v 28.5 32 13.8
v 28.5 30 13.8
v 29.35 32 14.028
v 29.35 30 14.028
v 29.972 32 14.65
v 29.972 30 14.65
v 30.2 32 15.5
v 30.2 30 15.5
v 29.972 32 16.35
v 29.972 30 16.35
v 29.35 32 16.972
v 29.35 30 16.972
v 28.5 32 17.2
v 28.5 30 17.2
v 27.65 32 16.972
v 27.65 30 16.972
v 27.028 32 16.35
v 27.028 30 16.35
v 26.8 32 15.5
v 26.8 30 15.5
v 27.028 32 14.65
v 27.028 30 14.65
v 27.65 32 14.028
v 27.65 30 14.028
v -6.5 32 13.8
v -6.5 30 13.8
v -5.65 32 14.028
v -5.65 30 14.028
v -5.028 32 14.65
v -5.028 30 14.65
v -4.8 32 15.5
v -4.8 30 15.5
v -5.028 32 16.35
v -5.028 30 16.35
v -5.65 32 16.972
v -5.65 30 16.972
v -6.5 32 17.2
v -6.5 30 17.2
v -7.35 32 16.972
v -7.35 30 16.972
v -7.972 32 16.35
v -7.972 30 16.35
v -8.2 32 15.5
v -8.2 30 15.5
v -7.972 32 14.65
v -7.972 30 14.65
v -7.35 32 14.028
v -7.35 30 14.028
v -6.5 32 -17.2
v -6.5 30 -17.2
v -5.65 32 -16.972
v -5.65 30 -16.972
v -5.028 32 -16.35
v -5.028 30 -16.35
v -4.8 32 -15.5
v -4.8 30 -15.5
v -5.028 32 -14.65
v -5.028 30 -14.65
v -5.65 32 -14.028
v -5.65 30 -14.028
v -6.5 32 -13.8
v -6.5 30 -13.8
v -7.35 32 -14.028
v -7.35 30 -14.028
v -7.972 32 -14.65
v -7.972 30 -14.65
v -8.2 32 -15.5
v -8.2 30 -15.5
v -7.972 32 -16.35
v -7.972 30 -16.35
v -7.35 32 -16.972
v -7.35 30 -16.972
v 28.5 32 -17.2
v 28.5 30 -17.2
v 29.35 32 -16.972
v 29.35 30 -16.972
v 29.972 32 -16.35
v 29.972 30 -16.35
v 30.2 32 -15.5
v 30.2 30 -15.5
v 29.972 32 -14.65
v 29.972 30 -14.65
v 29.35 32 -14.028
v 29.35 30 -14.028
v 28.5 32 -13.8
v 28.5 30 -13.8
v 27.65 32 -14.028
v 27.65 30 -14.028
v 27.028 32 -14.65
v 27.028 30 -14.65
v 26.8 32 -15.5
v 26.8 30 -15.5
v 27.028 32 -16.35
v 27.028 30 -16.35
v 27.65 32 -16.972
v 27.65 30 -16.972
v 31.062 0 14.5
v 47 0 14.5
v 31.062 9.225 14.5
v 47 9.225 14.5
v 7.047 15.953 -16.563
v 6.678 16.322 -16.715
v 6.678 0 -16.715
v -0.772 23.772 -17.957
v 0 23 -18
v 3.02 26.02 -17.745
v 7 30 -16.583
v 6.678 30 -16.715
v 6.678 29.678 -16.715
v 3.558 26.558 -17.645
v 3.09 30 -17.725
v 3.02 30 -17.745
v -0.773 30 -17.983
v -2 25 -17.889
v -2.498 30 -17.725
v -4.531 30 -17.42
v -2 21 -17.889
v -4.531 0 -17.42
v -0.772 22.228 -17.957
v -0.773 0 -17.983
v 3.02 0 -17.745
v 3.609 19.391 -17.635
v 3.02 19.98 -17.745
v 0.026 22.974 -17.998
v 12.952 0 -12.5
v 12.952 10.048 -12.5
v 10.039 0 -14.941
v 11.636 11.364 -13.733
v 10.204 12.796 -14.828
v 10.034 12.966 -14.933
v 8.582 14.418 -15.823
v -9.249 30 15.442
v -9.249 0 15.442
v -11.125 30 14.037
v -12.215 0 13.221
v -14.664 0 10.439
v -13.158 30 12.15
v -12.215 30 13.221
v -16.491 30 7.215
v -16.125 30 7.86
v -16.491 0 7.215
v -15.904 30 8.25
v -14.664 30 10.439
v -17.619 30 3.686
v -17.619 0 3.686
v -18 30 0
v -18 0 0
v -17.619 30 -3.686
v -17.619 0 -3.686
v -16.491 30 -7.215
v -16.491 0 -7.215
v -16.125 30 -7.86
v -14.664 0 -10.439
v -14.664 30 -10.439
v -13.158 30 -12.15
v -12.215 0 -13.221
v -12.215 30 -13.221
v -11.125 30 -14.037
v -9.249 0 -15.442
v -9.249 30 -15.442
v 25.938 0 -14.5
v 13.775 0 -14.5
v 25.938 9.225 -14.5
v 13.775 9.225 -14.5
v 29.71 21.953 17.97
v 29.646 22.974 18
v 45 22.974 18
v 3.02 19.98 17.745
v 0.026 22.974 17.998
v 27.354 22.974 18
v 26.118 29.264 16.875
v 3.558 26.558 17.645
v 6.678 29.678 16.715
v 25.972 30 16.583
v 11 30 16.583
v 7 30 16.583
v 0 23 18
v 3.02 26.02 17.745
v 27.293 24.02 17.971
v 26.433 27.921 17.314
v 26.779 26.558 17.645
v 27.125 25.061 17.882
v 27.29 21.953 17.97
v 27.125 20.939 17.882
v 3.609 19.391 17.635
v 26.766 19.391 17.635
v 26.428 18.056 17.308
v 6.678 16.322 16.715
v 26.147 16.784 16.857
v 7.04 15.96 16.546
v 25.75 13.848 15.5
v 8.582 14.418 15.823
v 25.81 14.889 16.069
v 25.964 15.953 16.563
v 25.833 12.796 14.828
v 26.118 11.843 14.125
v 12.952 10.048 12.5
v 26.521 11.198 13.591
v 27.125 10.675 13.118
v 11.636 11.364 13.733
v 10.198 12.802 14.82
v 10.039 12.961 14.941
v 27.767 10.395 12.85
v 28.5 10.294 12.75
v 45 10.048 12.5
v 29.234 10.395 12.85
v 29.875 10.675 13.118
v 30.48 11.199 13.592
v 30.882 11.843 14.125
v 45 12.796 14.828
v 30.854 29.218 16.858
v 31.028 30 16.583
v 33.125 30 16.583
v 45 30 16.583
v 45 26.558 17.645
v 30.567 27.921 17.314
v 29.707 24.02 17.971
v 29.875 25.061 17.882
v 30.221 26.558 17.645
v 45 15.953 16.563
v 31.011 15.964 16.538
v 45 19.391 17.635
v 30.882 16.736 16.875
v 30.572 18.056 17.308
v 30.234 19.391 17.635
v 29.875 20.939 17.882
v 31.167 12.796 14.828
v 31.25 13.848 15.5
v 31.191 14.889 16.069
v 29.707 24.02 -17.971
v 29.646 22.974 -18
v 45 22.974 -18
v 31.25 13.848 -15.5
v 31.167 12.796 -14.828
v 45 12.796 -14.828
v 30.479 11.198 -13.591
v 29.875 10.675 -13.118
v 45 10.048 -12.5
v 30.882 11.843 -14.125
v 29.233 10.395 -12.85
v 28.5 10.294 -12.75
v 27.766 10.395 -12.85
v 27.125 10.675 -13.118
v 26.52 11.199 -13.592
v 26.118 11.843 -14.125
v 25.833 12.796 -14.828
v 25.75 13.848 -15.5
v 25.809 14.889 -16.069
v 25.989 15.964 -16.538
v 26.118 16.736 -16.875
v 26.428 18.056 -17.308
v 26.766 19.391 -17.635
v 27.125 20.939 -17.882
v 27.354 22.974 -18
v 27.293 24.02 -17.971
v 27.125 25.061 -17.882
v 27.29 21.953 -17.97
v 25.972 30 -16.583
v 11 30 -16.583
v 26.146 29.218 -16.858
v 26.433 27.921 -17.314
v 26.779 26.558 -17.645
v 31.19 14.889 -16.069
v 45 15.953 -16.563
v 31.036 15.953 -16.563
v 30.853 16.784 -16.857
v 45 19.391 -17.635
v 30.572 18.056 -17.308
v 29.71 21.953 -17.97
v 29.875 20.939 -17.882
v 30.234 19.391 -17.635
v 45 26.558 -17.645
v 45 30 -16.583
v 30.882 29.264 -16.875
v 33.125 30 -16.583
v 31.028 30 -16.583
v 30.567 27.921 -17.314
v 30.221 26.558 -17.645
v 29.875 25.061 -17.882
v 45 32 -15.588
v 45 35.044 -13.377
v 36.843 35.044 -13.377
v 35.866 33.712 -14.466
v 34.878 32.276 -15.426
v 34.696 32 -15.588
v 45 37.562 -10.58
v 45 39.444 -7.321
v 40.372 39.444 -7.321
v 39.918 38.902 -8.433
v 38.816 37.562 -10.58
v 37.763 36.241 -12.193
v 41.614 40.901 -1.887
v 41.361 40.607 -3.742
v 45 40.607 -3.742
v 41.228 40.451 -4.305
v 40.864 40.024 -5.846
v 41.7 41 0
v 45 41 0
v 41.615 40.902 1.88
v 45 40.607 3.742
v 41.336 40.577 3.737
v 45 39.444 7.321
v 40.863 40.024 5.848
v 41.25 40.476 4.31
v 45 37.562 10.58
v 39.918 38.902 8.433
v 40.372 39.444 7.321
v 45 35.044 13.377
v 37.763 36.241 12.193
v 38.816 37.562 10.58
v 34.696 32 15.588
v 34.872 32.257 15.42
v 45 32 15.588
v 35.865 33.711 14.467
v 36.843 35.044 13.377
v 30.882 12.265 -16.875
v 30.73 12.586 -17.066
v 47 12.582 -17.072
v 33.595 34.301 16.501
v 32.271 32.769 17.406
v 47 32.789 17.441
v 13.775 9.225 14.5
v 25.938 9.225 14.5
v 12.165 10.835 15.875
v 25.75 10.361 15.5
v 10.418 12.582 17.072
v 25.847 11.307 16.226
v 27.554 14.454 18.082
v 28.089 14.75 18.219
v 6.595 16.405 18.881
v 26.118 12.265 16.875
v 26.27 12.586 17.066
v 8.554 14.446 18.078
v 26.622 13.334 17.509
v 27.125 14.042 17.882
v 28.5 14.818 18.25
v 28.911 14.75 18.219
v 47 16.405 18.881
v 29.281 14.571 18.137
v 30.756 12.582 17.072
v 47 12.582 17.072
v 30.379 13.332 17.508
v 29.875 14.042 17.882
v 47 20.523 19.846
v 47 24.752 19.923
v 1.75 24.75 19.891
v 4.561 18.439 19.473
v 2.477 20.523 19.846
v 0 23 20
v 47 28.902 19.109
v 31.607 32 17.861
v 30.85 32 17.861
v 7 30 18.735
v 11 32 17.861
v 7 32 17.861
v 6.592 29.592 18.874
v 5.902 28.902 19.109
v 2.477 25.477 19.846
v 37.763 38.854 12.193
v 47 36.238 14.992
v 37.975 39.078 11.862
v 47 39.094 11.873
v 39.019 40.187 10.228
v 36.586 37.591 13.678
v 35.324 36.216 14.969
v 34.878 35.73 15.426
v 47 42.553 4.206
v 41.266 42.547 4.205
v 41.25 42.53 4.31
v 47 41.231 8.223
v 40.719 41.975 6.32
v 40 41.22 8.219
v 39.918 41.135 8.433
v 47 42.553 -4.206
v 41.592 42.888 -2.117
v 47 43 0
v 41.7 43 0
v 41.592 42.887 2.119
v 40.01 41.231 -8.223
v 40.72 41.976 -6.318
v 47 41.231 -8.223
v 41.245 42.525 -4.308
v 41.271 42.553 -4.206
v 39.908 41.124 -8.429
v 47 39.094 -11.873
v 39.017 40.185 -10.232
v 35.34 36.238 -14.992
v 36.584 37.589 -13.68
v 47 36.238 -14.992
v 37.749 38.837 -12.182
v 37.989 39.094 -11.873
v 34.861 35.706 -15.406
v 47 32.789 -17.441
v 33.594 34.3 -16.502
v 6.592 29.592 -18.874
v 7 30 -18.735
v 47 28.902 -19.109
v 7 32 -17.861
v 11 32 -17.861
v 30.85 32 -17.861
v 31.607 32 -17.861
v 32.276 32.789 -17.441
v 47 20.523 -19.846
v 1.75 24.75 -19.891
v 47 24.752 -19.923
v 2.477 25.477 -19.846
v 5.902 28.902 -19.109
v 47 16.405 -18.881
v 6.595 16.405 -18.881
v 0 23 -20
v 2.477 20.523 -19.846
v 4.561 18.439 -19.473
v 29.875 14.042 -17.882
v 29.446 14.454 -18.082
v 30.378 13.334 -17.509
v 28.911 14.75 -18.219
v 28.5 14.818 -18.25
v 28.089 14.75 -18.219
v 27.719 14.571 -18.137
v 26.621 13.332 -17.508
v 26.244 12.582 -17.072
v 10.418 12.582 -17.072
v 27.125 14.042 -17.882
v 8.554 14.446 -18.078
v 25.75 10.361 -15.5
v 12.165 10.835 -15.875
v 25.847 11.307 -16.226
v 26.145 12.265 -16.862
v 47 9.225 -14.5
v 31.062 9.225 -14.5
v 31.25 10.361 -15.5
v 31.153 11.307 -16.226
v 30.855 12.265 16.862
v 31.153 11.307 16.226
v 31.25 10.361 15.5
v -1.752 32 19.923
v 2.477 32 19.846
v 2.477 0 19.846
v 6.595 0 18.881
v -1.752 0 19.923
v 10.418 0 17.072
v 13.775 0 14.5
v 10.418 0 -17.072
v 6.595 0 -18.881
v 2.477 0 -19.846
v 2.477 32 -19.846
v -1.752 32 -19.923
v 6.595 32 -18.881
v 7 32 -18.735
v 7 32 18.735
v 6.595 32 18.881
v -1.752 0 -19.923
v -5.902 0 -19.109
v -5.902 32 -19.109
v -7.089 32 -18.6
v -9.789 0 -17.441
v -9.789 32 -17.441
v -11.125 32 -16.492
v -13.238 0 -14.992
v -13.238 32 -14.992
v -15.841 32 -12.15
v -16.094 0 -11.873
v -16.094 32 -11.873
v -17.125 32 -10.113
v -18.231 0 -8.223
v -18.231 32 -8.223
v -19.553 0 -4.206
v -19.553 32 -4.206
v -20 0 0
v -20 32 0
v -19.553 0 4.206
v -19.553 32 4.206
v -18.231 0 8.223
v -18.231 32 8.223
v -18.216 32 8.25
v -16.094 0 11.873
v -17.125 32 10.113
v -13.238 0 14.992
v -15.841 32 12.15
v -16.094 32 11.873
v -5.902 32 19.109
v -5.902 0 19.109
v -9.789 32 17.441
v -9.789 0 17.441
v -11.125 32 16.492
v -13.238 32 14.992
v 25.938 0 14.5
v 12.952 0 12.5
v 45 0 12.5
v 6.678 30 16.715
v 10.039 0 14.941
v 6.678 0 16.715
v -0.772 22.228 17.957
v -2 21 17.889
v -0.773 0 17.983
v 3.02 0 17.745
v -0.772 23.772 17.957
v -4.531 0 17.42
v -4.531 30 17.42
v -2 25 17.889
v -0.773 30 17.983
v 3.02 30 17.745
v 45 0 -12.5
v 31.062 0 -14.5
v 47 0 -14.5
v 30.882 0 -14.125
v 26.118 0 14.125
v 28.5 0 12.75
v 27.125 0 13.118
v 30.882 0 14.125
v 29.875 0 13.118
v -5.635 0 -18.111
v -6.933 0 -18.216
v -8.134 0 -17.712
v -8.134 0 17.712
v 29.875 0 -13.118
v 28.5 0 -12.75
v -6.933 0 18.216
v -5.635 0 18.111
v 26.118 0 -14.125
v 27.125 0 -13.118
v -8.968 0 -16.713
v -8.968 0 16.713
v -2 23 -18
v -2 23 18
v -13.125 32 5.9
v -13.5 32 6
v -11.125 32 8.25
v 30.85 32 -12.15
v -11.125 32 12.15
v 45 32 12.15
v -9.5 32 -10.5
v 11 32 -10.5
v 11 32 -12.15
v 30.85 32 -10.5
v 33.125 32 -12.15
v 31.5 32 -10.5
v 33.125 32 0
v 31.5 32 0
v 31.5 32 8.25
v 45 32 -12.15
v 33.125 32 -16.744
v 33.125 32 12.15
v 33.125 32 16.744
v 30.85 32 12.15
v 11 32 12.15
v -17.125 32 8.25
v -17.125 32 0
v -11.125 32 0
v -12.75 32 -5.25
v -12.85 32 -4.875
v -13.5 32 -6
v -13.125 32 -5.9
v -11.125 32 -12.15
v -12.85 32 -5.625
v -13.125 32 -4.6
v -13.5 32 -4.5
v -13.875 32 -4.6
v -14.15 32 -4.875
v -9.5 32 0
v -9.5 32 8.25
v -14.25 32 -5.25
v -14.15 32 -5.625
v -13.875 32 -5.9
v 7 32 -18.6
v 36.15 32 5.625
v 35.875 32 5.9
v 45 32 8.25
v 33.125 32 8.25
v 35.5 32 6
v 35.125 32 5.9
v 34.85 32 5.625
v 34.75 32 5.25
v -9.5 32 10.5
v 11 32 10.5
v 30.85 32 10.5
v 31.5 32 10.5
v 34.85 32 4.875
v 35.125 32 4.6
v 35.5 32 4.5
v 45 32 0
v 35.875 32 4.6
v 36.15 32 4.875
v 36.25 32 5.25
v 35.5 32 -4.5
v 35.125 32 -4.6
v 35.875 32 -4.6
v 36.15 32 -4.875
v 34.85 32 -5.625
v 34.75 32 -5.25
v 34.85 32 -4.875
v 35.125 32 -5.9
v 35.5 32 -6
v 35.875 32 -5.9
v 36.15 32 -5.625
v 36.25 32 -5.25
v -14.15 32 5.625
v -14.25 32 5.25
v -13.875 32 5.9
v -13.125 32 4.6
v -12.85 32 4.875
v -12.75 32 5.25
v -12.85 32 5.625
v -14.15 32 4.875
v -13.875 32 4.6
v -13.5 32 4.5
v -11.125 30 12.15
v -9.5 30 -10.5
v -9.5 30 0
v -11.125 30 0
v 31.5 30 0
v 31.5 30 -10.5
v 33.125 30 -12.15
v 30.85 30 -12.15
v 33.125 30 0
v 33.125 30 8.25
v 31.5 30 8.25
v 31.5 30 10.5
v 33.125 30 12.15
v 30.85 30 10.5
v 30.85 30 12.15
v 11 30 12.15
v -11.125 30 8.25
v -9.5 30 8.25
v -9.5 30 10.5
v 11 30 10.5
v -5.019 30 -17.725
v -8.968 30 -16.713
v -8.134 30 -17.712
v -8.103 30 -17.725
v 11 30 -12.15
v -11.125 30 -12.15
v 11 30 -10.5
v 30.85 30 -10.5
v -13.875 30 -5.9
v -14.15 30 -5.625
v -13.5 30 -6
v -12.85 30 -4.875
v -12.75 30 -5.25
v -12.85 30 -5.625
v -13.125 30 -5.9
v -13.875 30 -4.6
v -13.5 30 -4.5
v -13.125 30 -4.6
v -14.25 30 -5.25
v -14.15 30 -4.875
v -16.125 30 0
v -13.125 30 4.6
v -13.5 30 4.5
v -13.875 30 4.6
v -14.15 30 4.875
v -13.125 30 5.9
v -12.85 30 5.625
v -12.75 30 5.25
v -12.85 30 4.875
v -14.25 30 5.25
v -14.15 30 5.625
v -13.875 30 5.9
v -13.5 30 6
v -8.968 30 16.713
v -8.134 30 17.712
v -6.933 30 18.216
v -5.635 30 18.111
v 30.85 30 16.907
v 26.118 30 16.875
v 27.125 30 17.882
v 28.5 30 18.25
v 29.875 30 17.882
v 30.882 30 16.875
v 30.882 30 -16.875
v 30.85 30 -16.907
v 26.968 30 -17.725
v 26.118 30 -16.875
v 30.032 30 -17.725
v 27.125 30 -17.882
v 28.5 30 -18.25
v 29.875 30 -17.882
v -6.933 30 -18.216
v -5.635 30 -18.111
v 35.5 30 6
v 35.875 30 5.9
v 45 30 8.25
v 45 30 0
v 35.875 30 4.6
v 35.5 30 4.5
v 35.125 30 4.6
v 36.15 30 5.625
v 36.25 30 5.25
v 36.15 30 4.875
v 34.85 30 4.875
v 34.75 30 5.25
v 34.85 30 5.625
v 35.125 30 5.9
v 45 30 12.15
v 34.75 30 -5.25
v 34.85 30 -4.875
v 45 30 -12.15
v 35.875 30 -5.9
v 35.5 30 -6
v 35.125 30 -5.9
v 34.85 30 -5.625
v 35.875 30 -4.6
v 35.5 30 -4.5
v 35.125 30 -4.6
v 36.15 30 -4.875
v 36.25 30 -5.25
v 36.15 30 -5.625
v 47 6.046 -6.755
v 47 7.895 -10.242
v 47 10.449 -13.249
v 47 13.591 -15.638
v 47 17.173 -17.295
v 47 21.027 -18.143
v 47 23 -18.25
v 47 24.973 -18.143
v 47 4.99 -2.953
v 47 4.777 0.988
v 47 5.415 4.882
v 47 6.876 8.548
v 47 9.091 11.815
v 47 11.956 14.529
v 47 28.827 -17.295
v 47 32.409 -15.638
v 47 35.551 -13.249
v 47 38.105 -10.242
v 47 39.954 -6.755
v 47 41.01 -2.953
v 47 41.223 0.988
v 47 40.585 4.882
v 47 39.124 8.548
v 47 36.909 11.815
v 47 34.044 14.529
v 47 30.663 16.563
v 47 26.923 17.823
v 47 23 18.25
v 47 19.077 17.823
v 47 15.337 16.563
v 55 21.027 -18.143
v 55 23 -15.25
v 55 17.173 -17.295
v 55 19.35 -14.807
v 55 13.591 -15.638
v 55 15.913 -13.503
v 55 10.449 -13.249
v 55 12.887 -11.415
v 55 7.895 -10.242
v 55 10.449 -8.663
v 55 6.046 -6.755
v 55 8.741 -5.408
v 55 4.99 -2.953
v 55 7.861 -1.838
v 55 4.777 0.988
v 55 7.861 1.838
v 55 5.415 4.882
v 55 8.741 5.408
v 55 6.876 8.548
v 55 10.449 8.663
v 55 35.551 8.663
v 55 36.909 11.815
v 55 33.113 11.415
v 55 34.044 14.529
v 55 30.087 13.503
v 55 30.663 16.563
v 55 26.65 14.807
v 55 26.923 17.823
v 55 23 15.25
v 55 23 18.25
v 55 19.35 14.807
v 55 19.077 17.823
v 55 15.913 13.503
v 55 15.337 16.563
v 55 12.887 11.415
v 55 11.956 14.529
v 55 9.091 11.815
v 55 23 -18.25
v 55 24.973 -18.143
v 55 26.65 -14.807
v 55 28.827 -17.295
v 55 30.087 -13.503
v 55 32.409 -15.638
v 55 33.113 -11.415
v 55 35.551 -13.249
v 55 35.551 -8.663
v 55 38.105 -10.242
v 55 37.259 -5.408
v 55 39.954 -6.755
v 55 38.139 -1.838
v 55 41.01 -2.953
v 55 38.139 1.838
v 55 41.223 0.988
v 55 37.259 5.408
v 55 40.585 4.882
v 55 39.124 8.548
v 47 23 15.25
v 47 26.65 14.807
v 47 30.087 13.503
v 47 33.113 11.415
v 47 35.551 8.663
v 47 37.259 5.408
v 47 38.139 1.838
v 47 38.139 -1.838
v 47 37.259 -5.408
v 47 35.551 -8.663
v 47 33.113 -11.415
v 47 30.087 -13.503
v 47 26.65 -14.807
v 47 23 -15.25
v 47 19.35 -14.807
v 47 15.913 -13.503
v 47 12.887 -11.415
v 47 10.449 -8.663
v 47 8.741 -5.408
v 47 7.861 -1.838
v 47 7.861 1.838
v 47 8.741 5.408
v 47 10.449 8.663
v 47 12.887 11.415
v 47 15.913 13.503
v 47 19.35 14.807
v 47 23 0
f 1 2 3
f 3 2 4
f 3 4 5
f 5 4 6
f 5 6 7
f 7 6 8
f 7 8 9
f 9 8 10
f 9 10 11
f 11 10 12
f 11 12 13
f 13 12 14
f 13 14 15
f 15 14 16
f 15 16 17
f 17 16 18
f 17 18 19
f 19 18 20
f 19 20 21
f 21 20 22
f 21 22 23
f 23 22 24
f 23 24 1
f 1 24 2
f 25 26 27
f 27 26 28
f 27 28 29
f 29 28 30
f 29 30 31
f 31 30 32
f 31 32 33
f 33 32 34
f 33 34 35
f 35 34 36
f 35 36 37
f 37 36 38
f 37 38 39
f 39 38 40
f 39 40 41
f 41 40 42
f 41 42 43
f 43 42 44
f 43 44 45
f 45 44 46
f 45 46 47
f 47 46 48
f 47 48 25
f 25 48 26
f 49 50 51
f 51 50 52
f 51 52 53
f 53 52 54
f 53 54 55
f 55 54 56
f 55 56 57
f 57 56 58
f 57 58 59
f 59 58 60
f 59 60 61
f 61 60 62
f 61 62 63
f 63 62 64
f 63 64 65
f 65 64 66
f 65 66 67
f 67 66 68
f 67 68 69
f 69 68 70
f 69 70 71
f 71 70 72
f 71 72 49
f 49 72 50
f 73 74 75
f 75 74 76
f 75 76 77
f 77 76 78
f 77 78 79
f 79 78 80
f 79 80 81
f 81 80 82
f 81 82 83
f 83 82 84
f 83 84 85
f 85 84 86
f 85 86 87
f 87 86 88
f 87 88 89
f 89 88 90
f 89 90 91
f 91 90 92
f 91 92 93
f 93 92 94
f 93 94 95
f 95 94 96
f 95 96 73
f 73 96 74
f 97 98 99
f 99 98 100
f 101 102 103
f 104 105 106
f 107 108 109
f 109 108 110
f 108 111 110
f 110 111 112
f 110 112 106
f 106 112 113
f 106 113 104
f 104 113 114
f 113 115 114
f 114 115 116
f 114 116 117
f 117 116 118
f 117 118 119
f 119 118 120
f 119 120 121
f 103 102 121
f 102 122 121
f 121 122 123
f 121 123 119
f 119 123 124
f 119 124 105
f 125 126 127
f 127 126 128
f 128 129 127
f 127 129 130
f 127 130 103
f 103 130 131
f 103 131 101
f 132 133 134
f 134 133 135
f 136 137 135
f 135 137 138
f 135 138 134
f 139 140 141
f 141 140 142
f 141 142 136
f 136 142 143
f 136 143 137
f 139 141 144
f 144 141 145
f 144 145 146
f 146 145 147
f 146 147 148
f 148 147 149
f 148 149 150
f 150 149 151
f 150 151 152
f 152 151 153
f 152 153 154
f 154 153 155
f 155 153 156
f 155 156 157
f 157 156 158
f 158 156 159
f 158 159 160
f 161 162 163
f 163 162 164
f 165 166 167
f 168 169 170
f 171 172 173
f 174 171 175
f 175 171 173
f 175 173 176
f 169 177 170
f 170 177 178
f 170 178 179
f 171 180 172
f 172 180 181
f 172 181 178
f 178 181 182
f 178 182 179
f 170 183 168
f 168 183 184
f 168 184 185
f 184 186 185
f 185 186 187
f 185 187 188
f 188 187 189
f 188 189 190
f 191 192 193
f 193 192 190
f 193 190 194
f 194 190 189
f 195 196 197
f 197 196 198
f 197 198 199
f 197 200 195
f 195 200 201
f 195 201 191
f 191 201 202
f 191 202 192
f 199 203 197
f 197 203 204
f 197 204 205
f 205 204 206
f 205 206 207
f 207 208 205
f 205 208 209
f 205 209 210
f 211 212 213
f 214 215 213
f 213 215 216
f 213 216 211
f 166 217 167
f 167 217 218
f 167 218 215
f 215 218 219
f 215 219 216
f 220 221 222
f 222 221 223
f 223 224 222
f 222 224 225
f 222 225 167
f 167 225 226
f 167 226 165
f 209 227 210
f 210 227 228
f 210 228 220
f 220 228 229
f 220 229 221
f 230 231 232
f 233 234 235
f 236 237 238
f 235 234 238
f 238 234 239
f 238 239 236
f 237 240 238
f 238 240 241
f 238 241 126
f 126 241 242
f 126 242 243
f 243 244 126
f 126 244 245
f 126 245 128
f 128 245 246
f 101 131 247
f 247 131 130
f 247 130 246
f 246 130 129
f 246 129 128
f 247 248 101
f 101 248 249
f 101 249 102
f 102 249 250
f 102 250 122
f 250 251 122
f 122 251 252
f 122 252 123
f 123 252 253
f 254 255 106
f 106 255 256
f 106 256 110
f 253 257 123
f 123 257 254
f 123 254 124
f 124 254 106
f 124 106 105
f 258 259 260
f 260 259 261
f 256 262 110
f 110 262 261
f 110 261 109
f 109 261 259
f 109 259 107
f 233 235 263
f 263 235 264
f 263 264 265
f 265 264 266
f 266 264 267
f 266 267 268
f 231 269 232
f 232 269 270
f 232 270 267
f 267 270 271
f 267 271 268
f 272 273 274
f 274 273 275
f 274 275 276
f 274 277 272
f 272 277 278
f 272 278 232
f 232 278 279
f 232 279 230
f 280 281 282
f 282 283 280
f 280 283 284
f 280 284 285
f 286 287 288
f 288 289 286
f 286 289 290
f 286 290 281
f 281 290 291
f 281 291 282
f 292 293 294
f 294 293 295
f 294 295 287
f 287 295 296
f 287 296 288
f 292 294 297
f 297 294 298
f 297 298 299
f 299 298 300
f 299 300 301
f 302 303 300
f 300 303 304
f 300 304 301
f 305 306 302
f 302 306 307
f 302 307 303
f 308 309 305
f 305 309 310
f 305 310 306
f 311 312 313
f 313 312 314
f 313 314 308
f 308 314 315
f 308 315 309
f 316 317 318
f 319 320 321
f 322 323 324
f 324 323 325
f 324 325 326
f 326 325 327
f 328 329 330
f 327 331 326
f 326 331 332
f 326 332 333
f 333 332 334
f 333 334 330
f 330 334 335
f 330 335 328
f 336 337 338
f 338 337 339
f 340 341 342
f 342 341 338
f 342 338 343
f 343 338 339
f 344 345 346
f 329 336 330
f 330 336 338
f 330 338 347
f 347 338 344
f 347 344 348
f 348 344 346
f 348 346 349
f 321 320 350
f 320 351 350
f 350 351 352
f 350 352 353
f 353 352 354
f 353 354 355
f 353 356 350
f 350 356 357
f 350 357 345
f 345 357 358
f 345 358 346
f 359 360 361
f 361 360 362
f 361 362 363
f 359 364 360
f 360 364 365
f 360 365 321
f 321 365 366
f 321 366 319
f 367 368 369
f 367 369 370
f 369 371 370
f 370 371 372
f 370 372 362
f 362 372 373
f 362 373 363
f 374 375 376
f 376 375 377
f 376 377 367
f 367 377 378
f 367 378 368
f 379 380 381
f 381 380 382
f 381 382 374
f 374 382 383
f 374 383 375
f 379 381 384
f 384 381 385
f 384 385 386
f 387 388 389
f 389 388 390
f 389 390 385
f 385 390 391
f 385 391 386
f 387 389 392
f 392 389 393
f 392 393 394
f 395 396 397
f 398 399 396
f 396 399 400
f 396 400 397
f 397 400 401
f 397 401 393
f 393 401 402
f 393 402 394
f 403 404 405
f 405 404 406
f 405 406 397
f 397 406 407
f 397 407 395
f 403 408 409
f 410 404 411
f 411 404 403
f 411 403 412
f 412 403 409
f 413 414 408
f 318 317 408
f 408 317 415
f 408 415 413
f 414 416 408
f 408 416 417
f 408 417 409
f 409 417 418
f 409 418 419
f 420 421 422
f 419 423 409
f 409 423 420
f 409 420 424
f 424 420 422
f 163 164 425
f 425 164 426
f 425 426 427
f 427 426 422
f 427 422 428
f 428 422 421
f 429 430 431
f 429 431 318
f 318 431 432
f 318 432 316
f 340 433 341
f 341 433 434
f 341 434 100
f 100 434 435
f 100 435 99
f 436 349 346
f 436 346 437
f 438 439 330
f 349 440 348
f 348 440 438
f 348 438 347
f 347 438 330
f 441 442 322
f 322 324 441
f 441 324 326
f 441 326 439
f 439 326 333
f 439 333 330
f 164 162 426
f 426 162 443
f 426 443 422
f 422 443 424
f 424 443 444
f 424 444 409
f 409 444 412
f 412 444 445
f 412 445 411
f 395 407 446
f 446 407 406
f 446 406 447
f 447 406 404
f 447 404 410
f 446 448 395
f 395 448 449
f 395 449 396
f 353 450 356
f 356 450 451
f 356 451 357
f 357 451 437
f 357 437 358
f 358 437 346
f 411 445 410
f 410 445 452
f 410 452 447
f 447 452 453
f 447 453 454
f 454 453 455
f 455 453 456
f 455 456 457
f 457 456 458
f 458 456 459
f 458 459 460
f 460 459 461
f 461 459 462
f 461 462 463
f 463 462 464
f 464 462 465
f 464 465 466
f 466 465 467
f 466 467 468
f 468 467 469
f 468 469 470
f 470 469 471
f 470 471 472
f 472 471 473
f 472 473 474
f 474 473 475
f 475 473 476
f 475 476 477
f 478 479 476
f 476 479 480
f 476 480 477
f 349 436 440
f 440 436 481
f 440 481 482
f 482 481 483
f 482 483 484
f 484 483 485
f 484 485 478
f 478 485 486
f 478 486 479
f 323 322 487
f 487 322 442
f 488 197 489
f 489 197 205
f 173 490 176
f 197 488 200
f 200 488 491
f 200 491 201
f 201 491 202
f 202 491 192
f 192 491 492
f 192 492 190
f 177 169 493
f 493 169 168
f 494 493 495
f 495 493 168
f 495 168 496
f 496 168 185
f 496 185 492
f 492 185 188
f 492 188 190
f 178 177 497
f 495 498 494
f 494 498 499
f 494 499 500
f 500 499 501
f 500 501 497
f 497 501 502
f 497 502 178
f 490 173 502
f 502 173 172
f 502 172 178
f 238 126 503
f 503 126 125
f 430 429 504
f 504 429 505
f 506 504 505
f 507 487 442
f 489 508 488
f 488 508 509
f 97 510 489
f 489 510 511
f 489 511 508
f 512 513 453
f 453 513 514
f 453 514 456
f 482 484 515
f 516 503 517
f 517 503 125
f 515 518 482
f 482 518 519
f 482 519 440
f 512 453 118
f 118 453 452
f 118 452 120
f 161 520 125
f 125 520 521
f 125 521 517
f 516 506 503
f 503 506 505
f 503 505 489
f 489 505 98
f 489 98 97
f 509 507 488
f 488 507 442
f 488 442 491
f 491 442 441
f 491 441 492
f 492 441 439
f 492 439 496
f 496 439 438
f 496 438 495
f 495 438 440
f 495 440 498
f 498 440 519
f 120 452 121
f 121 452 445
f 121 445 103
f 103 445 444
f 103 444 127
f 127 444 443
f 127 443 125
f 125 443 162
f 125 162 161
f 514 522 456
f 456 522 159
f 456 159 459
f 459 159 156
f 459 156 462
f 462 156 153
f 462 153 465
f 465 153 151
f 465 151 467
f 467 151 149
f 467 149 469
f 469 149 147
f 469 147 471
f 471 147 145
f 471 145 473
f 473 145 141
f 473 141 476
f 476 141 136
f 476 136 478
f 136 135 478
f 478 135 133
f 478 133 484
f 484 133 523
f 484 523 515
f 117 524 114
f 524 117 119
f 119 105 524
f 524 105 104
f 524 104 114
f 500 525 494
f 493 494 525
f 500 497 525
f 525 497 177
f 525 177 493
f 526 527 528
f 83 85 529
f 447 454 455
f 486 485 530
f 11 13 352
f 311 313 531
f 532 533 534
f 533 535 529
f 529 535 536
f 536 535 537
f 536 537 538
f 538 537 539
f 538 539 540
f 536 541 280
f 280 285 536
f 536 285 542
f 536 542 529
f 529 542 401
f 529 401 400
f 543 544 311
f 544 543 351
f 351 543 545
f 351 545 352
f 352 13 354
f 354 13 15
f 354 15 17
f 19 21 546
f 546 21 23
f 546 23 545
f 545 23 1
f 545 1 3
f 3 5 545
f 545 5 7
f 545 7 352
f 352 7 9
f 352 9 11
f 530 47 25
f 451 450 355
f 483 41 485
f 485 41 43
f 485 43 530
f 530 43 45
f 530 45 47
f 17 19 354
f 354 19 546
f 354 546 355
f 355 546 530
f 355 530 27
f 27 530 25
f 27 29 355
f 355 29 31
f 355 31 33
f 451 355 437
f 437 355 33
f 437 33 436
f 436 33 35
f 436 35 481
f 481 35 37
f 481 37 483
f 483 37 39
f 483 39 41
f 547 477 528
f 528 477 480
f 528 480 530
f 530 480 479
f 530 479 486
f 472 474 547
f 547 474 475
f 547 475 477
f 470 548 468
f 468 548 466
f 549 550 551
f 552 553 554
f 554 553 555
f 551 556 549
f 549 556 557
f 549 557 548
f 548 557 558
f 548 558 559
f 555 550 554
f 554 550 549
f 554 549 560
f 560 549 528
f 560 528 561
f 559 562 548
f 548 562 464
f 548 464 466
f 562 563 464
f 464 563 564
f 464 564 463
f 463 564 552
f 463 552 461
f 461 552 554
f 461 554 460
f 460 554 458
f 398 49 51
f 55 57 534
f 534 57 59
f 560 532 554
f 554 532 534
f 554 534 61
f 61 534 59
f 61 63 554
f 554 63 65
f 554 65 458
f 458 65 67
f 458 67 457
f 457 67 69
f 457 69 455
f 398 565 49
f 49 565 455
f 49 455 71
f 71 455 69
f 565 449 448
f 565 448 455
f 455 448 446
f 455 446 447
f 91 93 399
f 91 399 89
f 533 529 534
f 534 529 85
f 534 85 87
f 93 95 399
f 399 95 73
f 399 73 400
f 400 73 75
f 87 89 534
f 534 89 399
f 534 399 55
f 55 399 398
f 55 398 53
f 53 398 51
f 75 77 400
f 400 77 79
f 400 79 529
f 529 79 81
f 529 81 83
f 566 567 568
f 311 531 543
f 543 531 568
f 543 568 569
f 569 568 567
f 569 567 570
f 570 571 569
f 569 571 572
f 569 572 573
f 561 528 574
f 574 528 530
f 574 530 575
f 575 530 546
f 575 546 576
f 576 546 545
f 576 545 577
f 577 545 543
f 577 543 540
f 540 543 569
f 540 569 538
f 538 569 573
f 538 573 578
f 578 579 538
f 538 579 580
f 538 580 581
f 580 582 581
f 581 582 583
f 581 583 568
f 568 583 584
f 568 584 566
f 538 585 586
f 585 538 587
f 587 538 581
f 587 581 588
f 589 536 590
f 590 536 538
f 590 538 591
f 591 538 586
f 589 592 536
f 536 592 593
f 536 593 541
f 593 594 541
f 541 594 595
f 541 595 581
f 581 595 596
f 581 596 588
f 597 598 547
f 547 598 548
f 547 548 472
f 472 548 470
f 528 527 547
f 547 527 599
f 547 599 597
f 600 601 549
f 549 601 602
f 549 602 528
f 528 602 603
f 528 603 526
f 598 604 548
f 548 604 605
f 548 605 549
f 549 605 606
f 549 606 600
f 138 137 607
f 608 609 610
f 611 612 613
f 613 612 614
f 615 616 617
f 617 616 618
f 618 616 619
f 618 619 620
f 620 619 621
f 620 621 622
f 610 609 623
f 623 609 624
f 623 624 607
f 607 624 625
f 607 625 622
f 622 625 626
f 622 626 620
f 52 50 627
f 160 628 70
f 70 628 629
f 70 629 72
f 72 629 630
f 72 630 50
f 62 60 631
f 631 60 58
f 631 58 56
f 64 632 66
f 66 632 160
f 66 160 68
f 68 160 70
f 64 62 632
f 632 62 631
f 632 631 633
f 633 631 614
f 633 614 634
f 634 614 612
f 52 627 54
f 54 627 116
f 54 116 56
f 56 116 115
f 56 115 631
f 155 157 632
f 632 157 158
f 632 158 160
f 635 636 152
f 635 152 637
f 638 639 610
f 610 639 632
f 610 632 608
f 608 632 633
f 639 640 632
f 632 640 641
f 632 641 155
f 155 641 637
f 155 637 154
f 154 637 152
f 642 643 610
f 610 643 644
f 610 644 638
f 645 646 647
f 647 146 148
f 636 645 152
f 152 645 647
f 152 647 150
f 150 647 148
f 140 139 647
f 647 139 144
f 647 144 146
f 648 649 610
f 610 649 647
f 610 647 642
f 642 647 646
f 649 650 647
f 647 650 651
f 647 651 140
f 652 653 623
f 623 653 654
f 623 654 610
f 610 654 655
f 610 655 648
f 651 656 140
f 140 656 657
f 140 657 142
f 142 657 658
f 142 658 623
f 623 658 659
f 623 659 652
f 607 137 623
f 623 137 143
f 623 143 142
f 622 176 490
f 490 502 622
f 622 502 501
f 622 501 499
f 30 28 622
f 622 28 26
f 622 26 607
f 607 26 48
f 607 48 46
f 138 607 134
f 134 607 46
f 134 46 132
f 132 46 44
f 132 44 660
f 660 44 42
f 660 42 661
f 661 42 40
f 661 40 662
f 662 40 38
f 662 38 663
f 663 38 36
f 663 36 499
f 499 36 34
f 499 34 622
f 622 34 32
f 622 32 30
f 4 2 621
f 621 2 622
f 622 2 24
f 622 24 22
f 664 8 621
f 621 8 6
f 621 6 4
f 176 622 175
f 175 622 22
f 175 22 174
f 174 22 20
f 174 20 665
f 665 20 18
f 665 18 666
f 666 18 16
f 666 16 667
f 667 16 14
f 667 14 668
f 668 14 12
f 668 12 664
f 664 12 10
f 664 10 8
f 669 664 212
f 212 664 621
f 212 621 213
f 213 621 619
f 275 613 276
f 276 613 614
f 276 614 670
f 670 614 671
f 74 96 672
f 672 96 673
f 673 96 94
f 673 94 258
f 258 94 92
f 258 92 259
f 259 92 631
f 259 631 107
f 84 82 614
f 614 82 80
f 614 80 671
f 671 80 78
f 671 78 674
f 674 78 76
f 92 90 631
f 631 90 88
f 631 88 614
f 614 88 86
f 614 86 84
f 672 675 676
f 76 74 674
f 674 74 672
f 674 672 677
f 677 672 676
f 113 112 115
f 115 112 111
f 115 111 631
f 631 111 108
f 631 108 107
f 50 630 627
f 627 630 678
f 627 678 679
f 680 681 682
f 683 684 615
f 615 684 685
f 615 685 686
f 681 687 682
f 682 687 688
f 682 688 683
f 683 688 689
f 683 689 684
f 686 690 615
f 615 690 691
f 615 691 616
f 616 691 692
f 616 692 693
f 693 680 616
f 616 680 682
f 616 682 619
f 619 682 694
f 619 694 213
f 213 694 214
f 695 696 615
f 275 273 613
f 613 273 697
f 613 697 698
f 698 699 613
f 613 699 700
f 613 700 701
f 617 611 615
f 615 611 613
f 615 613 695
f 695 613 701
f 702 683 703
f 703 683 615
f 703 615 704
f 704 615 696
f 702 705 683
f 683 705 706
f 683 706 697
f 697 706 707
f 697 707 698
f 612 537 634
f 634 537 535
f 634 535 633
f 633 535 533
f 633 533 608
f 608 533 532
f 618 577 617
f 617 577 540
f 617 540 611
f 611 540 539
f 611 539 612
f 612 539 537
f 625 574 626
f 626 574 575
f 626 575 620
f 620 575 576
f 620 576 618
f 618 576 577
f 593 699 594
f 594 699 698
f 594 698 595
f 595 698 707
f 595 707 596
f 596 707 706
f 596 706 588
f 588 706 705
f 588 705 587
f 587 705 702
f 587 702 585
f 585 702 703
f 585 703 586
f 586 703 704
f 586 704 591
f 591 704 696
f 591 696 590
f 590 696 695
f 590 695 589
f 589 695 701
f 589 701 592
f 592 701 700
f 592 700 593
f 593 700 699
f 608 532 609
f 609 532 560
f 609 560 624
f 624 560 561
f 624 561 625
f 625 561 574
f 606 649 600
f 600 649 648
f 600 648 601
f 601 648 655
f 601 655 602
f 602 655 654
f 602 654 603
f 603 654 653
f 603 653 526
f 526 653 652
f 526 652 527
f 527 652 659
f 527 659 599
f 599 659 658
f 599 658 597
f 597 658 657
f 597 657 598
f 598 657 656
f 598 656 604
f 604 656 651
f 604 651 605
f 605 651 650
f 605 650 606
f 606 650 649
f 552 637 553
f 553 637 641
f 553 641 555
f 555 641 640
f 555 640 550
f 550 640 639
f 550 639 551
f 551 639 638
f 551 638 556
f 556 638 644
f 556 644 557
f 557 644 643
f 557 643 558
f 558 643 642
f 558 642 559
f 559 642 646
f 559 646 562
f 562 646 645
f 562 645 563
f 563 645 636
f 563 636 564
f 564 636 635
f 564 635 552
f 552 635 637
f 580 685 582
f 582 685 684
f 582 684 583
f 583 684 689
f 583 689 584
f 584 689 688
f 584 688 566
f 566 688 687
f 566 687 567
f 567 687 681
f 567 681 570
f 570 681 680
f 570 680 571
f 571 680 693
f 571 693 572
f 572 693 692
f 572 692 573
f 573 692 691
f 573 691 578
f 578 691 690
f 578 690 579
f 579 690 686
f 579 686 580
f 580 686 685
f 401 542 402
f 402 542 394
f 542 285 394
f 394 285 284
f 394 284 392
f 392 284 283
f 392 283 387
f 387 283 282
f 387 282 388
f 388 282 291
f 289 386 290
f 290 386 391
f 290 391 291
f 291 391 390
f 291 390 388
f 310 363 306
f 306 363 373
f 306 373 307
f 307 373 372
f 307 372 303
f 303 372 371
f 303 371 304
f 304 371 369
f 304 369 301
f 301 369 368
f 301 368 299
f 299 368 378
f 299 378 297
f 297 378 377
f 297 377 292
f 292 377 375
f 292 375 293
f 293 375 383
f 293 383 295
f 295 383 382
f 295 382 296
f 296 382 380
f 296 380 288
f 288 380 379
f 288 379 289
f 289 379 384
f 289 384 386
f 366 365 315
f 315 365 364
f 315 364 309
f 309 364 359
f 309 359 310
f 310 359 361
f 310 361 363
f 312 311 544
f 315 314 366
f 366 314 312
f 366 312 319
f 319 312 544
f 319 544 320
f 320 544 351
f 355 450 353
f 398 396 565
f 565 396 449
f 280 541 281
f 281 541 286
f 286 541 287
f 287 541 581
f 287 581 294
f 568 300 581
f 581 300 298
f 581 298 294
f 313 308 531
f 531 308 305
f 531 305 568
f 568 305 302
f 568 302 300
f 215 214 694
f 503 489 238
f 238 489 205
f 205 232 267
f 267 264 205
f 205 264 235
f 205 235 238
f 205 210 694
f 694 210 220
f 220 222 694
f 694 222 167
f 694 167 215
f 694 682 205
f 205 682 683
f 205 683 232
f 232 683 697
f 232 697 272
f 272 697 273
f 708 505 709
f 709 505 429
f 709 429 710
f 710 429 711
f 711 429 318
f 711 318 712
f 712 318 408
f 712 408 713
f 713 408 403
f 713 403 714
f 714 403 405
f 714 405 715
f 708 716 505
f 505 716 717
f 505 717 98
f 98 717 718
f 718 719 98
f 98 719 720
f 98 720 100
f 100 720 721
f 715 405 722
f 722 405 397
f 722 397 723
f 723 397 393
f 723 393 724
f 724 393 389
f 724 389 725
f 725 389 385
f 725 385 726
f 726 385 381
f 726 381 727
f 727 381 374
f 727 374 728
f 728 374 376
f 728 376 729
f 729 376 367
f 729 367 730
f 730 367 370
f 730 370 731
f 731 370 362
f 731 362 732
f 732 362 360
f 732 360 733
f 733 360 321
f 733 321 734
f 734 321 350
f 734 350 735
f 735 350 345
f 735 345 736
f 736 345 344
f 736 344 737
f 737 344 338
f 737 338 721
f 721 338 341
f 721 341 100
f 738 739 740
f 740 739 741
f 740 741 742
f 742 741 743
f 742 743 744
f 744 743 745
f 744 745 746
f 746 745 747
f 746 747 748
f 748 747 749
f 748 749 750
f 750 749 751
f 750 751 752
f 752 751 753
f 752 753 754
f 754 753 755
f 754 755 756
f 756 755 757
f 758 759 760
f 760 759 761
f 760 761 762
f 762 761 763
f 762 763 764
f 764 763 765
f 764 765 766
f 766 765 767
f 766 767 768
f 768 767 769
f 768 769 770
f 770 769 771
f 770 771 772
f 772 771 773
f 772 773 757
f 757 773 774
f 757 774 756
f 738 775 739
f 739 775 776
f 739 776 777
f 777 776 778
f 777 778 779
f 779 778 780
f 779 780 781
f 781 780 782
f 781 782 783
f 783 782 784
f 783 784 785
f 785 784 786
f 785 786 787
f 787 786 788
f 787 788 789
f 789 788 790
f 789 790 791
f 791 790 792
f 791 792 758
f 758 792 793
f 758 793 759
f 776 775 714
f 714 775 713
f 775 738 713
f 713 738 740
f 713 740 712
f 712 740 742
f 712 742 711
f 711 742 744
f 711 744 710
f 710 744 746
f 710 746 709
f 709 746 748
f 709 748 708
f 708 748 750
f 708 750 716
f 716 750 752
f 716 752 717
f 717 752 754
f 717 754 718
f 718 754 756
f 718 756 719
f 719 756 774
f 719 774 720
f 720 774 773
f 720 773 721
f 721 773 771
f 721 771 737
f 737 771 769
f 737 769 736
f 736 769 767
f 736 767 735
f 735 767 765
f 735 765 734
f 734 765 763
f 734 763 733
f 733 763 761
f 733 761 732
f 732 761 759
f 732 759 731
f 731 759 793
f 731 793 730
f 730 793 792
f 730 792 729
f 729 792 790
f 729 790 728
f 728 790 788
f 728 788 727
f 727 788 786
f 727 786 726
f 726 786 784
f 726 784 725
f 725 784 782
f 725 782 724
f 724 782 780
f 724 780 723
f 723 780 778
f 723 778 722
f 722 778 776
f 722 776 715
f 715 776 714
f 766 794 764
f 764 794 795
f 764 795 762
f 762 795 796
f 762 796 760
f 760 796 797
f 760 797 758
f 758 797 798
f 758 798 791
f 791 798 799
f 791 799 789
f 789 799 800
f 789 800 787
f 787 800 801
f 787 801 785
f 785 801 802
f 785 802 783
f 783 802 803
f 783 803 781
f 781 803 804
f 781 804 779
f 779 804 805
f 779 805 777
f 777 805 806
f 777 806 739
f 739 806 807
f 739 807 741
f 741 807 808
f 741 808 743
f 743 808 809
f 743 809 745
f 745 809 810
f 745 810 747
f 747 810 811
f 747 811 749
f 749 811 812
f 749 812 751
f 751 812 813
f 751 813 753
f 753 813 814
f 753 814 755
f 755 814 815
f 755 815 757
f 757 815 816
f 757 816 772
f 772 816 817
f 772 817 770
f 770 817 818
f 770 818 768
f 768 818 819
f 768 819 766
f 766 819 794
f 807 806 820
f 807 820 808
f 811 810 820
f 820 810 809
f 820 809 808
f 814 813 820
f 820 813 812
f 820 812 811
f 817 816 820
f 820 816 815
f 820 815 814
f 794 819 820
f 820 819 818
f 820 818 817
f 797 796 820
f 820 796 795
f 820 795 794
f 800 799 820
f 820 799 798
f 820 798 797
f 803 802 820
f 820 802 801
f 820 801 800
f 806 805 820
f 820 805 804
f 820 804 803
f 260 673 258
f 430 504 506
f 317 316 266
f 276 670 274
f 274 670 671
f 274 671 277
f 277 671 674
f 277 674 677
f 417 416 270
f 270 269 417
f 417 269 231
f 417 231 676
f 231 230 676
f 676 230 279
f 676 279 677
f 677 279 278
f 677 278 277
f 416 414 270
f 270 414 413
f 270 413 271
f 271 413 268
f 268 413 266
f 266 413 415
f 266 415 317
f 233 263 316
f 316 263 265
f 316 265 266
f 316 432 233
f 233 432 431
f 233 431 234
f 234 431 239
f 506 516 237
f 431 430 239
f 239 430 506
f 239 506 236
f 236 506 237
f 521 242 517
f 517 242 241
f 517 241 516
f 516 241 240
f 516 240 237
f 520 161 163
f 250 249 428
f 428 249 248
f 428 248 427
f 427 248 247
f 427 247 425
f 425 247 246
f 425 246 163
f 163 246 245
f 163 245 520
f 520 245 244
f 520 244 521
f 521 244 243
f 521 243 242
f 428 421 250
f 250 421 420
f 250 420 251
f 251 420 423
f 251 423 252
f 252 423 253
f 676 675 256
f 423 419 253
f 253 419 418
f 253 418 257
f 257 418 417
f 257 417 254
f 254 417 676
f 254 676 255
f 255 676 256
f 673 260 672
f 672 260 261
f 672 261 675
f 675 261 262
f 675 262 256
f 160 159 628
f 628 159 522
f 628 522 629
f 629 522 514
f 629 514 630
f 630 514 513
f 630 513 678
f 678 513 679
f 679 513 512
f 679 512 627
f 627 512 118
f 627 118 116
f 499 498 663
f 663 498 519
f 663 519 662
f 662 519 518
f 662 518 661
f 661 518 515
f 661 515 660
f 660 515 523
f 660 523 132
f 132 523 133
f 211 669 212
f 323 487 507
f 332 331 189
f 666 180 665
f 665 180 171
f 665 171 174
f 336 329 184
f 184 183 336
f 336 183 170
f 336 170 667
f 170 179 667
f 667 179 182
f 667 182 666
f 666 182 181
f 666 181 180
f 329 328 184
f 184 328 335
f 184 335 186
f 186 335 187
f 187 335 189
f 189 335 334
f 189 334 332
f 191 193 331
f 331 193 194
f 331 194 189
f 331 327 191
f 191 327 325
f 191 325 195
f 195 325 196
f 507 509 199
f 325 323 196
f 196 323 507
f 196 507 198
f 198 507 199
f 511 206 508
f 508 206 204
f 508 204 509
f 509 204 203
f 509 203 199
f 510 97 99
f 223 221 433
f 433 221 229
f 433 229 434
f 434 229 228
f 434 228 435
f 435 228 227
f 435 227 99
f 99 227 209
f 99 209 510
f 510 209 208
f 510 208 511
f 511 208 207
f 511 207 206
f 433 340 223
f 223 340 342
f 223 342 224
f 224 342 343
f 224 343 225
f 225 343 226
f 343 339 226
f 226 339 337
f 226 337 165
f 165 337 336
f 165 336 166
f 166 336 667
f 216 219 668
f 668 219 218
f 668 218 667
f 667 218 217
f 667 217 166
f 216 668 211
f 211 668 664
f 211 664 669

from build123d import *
from build123d.topology import SkipClean

# Parameters (mm, degrees)
EXTRUDE_1_DEPTH      = 30
EXTRUDE_START        = -40
EXTRUDE_5_DEPTH      = 40
CUT_EXTRUDE_START    = -42
SKETCH_11_R          = 18
CUT_EXTRUDE_2_DEPTH  = 42
CUT_EXTRUDE_3_DEPTH  = 20
CUT_EXTRUDE_6_DEPTH  = 30
EXTRUDE_7_DEPTH      = 5
EXTRUDE_7_DEPTH_BACK = 10
SKETCH_14_R          = 0.75
SKETCH_14_W          = 41
SKETCH_14_H          = 21
EXTRUDE_9_DEPTH      = 2
SKETCH_18_R          = 20.85
CUT_EXTRUDE_8_DEPTH  = 20
CUT_EXTRUDE_START_2  = -38
CUT_EXTRUDE_10_DEPTH = 38
EXTRUDE_10_DEPTH     = 5
EXTRUDE_11_DEPTH     = 2
SKETCH_22_R          = 18.25
SKETCH_22_R_2        = 15.25
EXTRUDE_13_DEPTH     = 8
SKETCH_29_R          = 1.7
CUT_EXTRUDE_13_DEPTH = 73.622310708
SKETCH_30_R          = 2.75
CUT_EXTRUDE_14_DEPTH = 30


# Read off the part's stored shape, not the designer's step: 凸台-拉伸5
with BuildPart() as part:
    # 草图1 → 凸台-拉伸1 (new body)
    with BuildSketch(Plane(origin=(0, 0, 0), x_dir=(1, 0, 0), z_dir=(0, 1, 0))):
        with BuildLine():
            Line((40, 12.5), (12.951833847, 12.5))
            ThreePointArc((12.951833847, 12.5), (-18, 0), (12.951833847, -12.5))
            Line((12.951833847, -12.5), (40, -12.5))
            Line((40, -12.5), (40, -14.5))
            Line((40, -14.5), (13.774977314, -14.5))
            ThreePointArc((13.774977314, -14.5), (-20, 0), (13.774977314, 14.5))
            Line((13.774977314, 14.5), (40, 14.5))
            Line((40, 14.5), (40, 12.5))
        make_face()
    extrude(amount=EXTRUDE_1_DEPTH)

    # 凸台-拉伸5 outline → 凸台-拉伸5 (add)
    with BuildSketch(Plane(origin=(40, 0, 0), x_dir=(0, 0, -1), z_dir=(1, 0, 0)).offset(EXTRUDE_START)):
        with BuildLine():
            ThreePointArc((14.5, 9.225022686), (0, 43), (-14.5, 9.225022686))
            ThreePointArc((-14.5, 9.225022686), (0, 3), (14.5, 9.225022686))
        make_face()
        with BuildLine():
            ThreePointArc((14.5, 12.334635496), (0, 5), (-14.5, 12.334635496))
            ThreePointArc((-14.5, 12.334635496), (0, 41), (14.5, 12.334635496))
        make_face(mode=Mode.SUBTRACT)
    extrude(amount=EXTRUDE_5_DEPTH)

    # 草图11 → 切除-拉伸2 (cut)
    with BuildSketch(Plane(origin=(40, 0, 0), x_dir=(0, 0, -1), z_dir=(1, 0, 0)).offset(CUT_EXTRUDE_START)):
        with Locations((0, 23)):
            Circle(SKETCH_11_R)
    extrude(amount=CUT_EXTRUDE_2_DEPTH, mode=Mode.SUBTRACT)

    # 草图10 → 切除-拉伸3 (cut)
    with BuildSketch(Plane(origin=(0, 30, 0), x_dir=(1, 0, 0), z_dir=(0, 1, 0))):
        with BuildLine():
            Line((0, 20), (40, 20))
            Line((40, 20), (40, -20))
            Line((40, -20), (0, -20))
            ThreePointArc((0, -20), (-20, 0), (0, 20))
        make_face()
    extrude(amount=CUT_EXTRUDE_3_DEPTH, mode=Mode.SUBTRACT)

    # 草图13 → 切除-拉伸6 (cut)
    with SkipClean():  # the faces are left unmerged after this step: merging them gives an invalid solid
        with BuildSketch(Plane.XZ):
            with BuildLine():
                Line((40, -12.5), (12.951833847, -12.5))
                ThreePointArc((12.951833847, -12.5), (-18, 0), (12.951833847, 12.5))
                Line((12.951833847, 12.5), (40, 12.5))
                Line((40, 12.5), (40, -12.5))
            make_face()
        extrude(amount=-CUT_EXTRUDE_6_DEPTH, mode=Mode.SUBTRACT)

    # 草图15 → 凸台-拉伸7 (add, two sides: drawn at the far end of the back side and taken through both)
    with SkipClean():  # the faces are left unmerged after this step: merging them gives an invalid solid
        with BuildSketch(Plane(origin=(40, 0, 0), x_dir=(0, 0, -1), z_dir=(1, 0, 0)).offset(-EXTRUDE_7_DEPTH_BACK)):
            with BuildLine():
                Line((12.5, 10.048166153), (12.5, 7.387505004))
                ThreePointArc((12.5, 7.387505004), (0, 43), (-12.5, 7.387505004))
                Line((-12.5, 7.387505004), (-12.5, 10.048166153))
                ThreePointArc((-12.5, 10.048166153), (0, 41), (12.5, 10.048166153))
            make_face()
        extrude(amount=EXTRUDE_7_DEPTH + EXTRUDE_7_DEPTH_BACK)

    # 草图14 → 凸台-拉伸9 (add)
    # profile 1 of 2: a face of its own
    with SkipClean():  # the faces are left unmerged after this step: merging them gives an invalid solid
        with BuildSketch(Plane(origin=(0, 30, 0), x_dir=(1, 0, 0), z_dir=(0, 1, 0))):
            with BuildLine():
                Line((7, -18.734993995), (30, -18.734993995))
                Line((30, -18.734993995), (30, -16.583123952))
                Line((30, -16.583123952), (7, -16.583123952))
                ThreePointArc((7, -16.583123952), (-18, 0), (7, 16.583123952))
                Line((7, 16.583123952), (30, 16.583123952))
                Line((30, 16.583123952), (30, 18.734993995))
                Line((30, 18.734993995), (7, 18.734993995))
                ThreePointArc((7, 18.734993995), (-20, 0), (7, -18.734993995))
            make_face()
        # profile 2 of 2: a face of its own
        with BuildSketch(Plane(origin=(0, 30, 0), x_dir=(1, 0, 0), z_dir=(0, 1, 0))):
            with BuildLine():
                Line((40, 16.583123952), (40, -16.583123952))
                Line((40, -16.583123952), (7, -16.583123952))
                ThreePointArc((7, -16.583123952), (-18, 0), (7, 16.583123952))
                Line((7, 16.583123952), (40, 16.583123952))
            make_face()
            with Locations(Location((-13.5, 5.25, 0), (0, 0, 270))):
                Circle(SKETCH_14_R, mode=Mode.SUBTRACT)
            with Locations(Location((-13.5, -5.25, 0), (0, 0, 270))):
                Circle(SKETCH_14_R, mode=Mode.SUBTRACT)
            with Locations(Location((35.5, 5.25, 0), (0, 0, 270))):
                Circle(SKETCH_14_R, mode=Mode.SUBTRACT)
            with Locations(Location((35.5, -5.25, 0), (0, 0, 270))):
                Circle(SKETCH_14_R, mode=Mode.SUBTRACT)
            with Locations((11, 0)):
                Rectangle(SKETCH_14_W, SKETCH_14_H, mode=Mode.SUBTRACT)
        extrude(amount=EXTRUDE_9_DEPTH)

    # 草图18 → 切除-拉伸8 (cut)
    with SkipClean():  # the faces are left unmerged after this step: merging them gives an invalid solid
        with BuildSketch(Plane(origin=(0, 32, 0), x_dir=(1, 0, 0), z_dir=(0, 1, 0))):
            with Locations((20.85, 0)):
                Circle(SKETCH_18_R)
        extrude(amount=CUT_EXTRUDE_8_DEPTH, mode=Mode.SUBTRACT)

    # 草图19 → 切除-拉伸10 (cut)
    with SkipClean():  # the faces are left unmerged after this step: merging them gives an invalid solid
        with BuildSketch(Plane(origin=(45, 0, 0), x_dir=(0, 0, -1), z_dir=(1, 0, 0)).offset(CUT_EXTRUDE_START_2)):
            with BuildLine():
                Line((-17.860571099, 32), (-18.734993995, 32))
                Line((-18.734993995, 32), (-18.734993995, 30))
                ThreePointArc((-18.734993995, 30), (-18.325087889, 31.011938208), (-17.860571099, 32))
            make_face()
            with BuildLine():
                Line((18.734993995, 32), (17.860571099, 32))
                ThreePointArc((17.860571099, 32), (18.325087889, 31.011938208), (18.734993995, 30))
                Line((18.734993995, 30), (18.734993995, 32))
            make_face()
        extrude(amount=CUT_EXTRUDE_10_DEPTH, mode=Mode.SUBTRACT)

    # 草图20 → 凸台-拉伸10 (add)
    with SkipClean():  # the faces are left unmerged after this step: merging them gives an invalid solid
        with BuildSketch(Plane(origin=(40, 0, 0), x_dir=(0, 0, -1), z_dir=(1, 0, 0))):
            with BuildLine():
                Line((-14.5, 9.225022686), (-14.5, 0))
                Line((-14.5, 0), (-12.5, 0))
                Line((-12.5, 0), (-12.5, 7.387505004))
                ThreePointArc((-12.5, 7.387505004), (-13.531227506, 8.27227505), (-14.5, 9.225022686))
            make_face()
            with BuildLine():
                Line((12.5, 7.387505004), (12.5, 0))
                Line((12.5, 0), (14.5, 0))
                Line((14.5, 0), (14.5, 9.225022686))
                ThreePointArc((14.5, 9.225022686), (13.531227506, 8.27227505), (12.5, 7.387505004))
            make_face()
            with BuildLine():
                Line((-16.583123952, 30), (16.583123952, 30))
                ThreePointArc((16.583123952, 30), (16.11684397, 31.015443871), (15.588457268, 32))
                Line((15.588457268, 32), (-15.588457268, 32))
                ThreePointArc((-15.588457268, 32), (-16.11684397, 31.015443871), (-16.583123952, 30))
            make_face()
        extrude(amount=EXTRUDE_10_DEPTH)

    # 草图21 → 凸台-拉伸11 (add)
    with SkipClean():  # the faces are left unmerged after this step: merging them gives an invalid solid
        with BuildSketch(Plane(origin=(45, 0, 0), x_dir=(0, 0, -1), z_dir=(1, 0, 0))):
            with BuildLine():
                Line((-14.5, 0), (14.5, 0))
                Line((14.5, 0), (14.5, 9.225022686))
                ThreePointArc((14.5, 9.225022686), (0, 43), (-14.5, 9.225022686))
                Line((-14.5, 9.225022686), (-14.5, 0))
            make_face()
        extrude(amount=EXTRUDE_11_DEPTH)

    # 草图22 → 凸台-拉伸13 (add)
    with SkipClean():  # the faces are left unmerged after this step: merging them gives an invalid solid
        with BuildSketch(Plane(origin=(47, 0, 0), x_dir=(0, 0, -1), z_dir=(1, 0, 0))):
            with Locations((0, 23)):
                Circle(SKETCH_22_R)
            with Locations((0, 23)):
                Circle(SKETCH_22_R_2, mode=Mode.SUBTRACT)
        extrude(amount=EXTRUDE_13_DEPTH)

    # 草图29 → 切除-拉伸13 (cut, through all)
    with SkipClean():  # the faces are left unmerged after this step: merging them gives an invalid solid
        with BuildSketch(Plane.XZ):
            with Locations(Location((-6.5, -15.5, 0), (0, 0, 90))):
                Circle(SKETCH_29_R)
            with Locations(Location((28.5, -15.5, 0), (0, 0, 90))):
                Circle(SKETCH_29_R)
            with Locations(Location((28.5, 15.5, 0), (0, 0, 90))):
                Circle(SKETCH_29_R)
            with Locations(Location((-6.5, 15.5, 0), (0, 0, 90))):
                Circle(SKETCH_29_R)
        extrude(amount=-CUT_EXTRUDE_13_DEPTH, mode=Mode.SUBTRACT)

    # 草图30 → 切除-拉伸14 (cut)
    with SkipClean():  # the faces are left unmerged after this step: merging them gives an invalid solid
        with BuildSketch(Plane.XZ):
            with Locations((-6.5, -15.5)):
                Circle(SKETCH_30_R)
            with Locations(Location((28.5, -15.5, 0), (0, 0, 203.195097041))):
                Circle(SKETCH_30_R)
            with Locations(Location((28.5, 15.5, 0), (0, 0, 338.676313737))):
                Circle(SKETCH_30_R)
            with Locations((-6.5, 15.5)):
                Circle(SKETCH_30_R)
        extrude(amount=-CUT_EXTRUDE_14_DEPTH, mode=Mode.SUBTRACT)


solid = part.part
